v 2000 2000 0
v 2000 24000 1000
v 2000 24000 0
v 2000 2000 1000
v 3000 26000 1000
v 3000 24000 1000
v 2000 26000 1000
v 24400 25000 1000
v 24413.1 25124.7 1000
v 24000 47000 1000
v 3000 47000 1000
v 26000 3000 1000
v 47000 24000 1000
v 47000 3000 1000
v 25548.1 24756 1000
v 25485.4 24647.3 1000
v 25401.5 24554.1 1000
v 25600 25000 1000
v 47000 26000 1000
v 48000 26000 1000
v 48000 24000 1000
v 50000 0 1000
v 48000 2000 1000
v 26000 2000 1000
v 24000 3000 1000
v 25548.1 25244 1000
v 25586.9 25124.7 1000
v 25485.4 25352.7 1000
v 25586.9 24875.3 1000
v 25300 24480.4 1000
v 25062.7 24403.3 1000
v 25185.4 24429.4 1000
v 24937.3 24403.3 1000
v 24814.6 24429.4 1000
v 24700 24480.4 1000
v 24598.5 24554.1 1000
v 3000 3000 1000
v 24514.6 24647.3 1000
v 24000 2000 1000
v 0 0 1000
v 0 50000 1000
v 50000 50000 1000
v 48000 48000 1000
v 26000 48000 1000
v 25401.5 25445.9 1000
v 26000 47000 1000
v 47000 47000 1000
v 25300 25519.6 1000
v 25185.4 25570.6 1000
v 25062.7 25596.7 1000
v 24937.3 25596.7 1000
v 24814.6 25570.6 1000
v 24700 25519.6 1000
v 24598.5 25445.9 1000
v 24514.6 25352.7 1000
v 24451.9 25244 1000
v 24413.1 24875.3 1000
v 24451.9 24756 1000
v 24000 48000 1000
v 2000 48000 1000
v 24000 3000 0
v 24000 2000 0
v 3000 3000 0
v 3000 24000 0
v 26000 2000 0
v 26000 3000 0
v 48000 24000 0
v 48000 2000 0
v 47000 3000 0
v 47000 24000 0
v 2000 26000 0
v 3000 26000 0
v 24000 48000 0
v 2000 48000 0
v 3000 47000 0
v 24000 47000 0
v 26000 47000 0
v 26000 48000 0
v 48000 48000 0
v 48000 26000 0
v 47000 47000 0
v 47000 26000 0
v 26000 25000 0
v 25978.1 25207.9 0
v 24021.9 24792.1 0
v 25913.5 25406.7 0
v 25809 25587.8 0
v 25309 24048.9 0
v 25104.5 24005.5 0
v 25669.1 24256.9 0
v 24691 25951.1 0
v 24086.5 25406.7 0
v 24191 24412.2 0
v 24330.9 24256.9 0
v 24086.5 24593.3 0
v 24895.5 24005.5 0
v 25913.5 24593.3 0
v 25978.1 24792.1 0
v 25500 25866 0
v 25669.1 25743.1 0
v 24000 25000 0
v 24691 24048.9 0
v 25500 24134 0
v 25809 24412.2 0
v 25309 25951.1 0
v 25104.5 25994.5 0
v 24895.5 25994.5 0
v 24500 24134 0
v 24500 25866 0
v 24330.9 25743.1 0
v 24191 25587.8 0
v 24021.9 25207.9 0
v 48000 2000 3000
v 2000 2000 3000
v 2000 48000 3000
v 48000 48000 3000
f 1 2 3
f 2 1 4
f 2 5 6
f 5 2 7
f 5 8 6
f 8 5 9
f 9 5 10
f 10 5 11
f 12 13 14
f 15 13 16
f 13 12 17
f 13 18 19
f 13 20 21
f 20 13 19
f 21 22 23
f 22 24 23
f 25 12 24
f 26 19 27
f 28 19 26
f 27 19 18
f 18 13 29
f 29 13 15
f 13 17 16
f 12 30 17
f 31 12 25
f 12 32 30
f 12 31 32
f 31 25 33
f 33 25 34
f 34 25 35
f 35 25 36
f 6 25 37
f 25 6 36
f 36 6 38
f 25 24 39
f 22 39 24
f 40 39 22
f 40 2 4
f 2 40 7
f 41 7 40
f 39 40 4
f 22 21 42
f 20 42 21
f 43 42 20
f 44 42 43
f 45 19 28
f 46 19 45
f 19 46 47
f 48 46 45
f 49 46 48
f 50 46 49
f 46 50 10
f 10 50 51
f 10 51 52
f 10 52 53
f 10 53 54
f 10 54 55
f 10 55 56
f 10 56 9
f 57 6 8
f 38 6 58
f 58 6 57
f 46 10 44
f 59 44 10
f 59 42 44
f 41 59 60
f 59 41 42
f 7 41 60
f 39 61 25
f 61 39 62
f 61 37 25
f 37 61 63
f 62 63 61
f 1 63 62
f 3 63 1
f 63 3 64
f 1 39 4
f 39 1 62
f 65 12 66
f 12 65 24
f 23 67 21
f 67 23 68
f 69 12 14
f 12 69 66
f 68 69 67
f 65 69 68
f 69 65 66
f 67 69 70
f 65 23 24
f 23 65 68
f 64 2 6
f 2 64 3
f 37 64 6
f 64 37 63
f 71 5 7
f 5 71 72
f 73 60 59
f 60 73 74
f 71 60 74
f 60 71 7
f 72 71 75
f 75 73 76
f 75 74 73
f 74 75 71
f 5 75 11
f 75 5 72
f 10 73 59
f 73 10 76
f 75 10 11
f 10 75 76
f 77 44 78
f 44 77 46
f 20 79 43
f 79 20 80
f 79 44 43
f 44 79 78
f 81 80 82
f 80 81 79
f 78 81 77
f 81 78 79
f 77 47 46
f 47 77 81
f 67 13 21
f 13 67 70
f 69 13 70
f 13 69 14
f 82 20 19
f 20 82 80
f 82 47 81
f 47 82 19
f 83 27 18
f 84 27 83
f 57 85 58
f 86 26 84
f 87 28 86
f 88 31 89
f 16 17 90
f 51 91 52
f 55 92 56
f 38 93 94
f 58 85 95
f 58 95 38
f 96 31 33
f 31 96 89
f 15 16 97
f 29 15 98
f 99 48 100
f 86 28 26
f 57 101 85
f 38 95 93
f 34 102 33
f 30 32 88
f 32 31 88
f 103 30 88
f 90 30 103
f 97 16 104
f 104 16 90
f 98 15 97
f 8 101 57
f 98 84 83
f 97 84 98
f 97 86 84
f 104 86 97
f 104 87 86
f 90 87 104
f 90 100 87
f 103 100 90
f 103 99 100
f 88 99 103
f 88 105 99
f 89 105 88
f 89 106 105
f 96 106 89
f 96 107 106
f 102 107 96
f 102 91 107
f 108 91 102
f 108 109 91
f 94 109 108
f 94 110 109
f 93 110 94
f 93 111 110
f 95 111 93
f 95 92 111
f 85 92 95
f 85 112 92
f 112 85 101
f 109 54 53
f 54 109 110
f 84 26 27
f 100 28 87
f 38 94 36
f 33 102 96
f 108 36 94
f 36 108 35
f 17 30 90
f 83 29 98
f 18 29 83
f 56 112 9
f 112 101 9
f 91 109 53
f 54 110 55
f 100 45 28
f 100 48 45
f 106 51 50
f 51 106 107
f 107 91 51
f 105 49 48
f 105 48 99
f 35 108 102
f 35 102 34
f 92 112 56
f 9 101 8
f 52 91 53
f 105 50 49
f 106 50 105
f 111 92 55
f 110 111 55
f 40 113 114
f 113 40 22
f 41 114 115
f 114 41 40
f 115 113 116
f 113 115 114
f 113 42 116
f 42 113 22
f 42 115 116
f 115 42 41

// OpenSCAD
// first version : plate for ware
// units : micrometers = 10^-6 m = 10^-3 mm
/* 
    3D
   **********   
  3     2
    7 6
    4 5
  0     1
 
    Dev
   **********   
   
   7 6
   4 5 6 7 4
   0 1 2 3 0
   3 2

    Coords
   **********   
   
0,1,3,2
4,5,1,0
7,6,5,4
5,6,2,1
6,7,3,2
7,4,0,3

*/

Show_Rendering_Error=true; 
// hauptplatte
l       = 50000             ; // length = x axis
w       = l                 ; // width = y axis
t       = 2000              ; // thickness
// central point
radius  = 1000              ; // radius
height  = 1000              ; // height
// borders
thick   = 1000              ; // thickness


translate([l/2, w/2, 0]){ 
    color([1,0,0]) 
    cylinder(height,radius, radius*0.6); 
    };
translate([t,t,0])
    border(l,thick, height, radius, t );

translate([t+thick,t,0])
    rotate([0,0,90])
        border(w,thick, height, radius, t );

translate([t,w-2*t+thick,0])
    border(l,thick, height, radius, t );

translate([l-t,t,0])
    rotate([0,0,90])
        border(w,thick, height, radius, t );
    
translate([0,0,height]) chamfered_plate(l,w,t);


module border(length, thickness, height, radius, t){
    border_length = (length-2*t-2*radius)/2 ;
    color([0,1,0])
    cube([border_length , thickness, height]);
    translate([(length-2*t-2*radius)/2+2*radius,0,0])
        color([0,0,1])
        cube([border_length, thickness, height]);
    }
    
module chamfered_plate(l,w,t){
        
    polyhedron(
        points = [
            [0      ,0      ,0],        // 0
            [l      ,0      ,0],        // 1
            [l      ,w      ,0],        // 2
            [0      ,w      ,0],        // 3
            [t      ,t      ,t],        // 4
            [l-t    ,t      ,t],        // 5
            [l-t    ,w-t    ,t],        // 6
            [t      ,w-t    ,t]         // 7
            ],
        faces = [
            [0,1,2,3],                  // bottom
            [4,5,1,0],                  // front
            [7,6,5,4],                  // top
            [5,6,2,1],                  // right
            [6,7,3,2],                  // back
            [7,4,0,3]                   // left
            ]
        );
        
    }
    
